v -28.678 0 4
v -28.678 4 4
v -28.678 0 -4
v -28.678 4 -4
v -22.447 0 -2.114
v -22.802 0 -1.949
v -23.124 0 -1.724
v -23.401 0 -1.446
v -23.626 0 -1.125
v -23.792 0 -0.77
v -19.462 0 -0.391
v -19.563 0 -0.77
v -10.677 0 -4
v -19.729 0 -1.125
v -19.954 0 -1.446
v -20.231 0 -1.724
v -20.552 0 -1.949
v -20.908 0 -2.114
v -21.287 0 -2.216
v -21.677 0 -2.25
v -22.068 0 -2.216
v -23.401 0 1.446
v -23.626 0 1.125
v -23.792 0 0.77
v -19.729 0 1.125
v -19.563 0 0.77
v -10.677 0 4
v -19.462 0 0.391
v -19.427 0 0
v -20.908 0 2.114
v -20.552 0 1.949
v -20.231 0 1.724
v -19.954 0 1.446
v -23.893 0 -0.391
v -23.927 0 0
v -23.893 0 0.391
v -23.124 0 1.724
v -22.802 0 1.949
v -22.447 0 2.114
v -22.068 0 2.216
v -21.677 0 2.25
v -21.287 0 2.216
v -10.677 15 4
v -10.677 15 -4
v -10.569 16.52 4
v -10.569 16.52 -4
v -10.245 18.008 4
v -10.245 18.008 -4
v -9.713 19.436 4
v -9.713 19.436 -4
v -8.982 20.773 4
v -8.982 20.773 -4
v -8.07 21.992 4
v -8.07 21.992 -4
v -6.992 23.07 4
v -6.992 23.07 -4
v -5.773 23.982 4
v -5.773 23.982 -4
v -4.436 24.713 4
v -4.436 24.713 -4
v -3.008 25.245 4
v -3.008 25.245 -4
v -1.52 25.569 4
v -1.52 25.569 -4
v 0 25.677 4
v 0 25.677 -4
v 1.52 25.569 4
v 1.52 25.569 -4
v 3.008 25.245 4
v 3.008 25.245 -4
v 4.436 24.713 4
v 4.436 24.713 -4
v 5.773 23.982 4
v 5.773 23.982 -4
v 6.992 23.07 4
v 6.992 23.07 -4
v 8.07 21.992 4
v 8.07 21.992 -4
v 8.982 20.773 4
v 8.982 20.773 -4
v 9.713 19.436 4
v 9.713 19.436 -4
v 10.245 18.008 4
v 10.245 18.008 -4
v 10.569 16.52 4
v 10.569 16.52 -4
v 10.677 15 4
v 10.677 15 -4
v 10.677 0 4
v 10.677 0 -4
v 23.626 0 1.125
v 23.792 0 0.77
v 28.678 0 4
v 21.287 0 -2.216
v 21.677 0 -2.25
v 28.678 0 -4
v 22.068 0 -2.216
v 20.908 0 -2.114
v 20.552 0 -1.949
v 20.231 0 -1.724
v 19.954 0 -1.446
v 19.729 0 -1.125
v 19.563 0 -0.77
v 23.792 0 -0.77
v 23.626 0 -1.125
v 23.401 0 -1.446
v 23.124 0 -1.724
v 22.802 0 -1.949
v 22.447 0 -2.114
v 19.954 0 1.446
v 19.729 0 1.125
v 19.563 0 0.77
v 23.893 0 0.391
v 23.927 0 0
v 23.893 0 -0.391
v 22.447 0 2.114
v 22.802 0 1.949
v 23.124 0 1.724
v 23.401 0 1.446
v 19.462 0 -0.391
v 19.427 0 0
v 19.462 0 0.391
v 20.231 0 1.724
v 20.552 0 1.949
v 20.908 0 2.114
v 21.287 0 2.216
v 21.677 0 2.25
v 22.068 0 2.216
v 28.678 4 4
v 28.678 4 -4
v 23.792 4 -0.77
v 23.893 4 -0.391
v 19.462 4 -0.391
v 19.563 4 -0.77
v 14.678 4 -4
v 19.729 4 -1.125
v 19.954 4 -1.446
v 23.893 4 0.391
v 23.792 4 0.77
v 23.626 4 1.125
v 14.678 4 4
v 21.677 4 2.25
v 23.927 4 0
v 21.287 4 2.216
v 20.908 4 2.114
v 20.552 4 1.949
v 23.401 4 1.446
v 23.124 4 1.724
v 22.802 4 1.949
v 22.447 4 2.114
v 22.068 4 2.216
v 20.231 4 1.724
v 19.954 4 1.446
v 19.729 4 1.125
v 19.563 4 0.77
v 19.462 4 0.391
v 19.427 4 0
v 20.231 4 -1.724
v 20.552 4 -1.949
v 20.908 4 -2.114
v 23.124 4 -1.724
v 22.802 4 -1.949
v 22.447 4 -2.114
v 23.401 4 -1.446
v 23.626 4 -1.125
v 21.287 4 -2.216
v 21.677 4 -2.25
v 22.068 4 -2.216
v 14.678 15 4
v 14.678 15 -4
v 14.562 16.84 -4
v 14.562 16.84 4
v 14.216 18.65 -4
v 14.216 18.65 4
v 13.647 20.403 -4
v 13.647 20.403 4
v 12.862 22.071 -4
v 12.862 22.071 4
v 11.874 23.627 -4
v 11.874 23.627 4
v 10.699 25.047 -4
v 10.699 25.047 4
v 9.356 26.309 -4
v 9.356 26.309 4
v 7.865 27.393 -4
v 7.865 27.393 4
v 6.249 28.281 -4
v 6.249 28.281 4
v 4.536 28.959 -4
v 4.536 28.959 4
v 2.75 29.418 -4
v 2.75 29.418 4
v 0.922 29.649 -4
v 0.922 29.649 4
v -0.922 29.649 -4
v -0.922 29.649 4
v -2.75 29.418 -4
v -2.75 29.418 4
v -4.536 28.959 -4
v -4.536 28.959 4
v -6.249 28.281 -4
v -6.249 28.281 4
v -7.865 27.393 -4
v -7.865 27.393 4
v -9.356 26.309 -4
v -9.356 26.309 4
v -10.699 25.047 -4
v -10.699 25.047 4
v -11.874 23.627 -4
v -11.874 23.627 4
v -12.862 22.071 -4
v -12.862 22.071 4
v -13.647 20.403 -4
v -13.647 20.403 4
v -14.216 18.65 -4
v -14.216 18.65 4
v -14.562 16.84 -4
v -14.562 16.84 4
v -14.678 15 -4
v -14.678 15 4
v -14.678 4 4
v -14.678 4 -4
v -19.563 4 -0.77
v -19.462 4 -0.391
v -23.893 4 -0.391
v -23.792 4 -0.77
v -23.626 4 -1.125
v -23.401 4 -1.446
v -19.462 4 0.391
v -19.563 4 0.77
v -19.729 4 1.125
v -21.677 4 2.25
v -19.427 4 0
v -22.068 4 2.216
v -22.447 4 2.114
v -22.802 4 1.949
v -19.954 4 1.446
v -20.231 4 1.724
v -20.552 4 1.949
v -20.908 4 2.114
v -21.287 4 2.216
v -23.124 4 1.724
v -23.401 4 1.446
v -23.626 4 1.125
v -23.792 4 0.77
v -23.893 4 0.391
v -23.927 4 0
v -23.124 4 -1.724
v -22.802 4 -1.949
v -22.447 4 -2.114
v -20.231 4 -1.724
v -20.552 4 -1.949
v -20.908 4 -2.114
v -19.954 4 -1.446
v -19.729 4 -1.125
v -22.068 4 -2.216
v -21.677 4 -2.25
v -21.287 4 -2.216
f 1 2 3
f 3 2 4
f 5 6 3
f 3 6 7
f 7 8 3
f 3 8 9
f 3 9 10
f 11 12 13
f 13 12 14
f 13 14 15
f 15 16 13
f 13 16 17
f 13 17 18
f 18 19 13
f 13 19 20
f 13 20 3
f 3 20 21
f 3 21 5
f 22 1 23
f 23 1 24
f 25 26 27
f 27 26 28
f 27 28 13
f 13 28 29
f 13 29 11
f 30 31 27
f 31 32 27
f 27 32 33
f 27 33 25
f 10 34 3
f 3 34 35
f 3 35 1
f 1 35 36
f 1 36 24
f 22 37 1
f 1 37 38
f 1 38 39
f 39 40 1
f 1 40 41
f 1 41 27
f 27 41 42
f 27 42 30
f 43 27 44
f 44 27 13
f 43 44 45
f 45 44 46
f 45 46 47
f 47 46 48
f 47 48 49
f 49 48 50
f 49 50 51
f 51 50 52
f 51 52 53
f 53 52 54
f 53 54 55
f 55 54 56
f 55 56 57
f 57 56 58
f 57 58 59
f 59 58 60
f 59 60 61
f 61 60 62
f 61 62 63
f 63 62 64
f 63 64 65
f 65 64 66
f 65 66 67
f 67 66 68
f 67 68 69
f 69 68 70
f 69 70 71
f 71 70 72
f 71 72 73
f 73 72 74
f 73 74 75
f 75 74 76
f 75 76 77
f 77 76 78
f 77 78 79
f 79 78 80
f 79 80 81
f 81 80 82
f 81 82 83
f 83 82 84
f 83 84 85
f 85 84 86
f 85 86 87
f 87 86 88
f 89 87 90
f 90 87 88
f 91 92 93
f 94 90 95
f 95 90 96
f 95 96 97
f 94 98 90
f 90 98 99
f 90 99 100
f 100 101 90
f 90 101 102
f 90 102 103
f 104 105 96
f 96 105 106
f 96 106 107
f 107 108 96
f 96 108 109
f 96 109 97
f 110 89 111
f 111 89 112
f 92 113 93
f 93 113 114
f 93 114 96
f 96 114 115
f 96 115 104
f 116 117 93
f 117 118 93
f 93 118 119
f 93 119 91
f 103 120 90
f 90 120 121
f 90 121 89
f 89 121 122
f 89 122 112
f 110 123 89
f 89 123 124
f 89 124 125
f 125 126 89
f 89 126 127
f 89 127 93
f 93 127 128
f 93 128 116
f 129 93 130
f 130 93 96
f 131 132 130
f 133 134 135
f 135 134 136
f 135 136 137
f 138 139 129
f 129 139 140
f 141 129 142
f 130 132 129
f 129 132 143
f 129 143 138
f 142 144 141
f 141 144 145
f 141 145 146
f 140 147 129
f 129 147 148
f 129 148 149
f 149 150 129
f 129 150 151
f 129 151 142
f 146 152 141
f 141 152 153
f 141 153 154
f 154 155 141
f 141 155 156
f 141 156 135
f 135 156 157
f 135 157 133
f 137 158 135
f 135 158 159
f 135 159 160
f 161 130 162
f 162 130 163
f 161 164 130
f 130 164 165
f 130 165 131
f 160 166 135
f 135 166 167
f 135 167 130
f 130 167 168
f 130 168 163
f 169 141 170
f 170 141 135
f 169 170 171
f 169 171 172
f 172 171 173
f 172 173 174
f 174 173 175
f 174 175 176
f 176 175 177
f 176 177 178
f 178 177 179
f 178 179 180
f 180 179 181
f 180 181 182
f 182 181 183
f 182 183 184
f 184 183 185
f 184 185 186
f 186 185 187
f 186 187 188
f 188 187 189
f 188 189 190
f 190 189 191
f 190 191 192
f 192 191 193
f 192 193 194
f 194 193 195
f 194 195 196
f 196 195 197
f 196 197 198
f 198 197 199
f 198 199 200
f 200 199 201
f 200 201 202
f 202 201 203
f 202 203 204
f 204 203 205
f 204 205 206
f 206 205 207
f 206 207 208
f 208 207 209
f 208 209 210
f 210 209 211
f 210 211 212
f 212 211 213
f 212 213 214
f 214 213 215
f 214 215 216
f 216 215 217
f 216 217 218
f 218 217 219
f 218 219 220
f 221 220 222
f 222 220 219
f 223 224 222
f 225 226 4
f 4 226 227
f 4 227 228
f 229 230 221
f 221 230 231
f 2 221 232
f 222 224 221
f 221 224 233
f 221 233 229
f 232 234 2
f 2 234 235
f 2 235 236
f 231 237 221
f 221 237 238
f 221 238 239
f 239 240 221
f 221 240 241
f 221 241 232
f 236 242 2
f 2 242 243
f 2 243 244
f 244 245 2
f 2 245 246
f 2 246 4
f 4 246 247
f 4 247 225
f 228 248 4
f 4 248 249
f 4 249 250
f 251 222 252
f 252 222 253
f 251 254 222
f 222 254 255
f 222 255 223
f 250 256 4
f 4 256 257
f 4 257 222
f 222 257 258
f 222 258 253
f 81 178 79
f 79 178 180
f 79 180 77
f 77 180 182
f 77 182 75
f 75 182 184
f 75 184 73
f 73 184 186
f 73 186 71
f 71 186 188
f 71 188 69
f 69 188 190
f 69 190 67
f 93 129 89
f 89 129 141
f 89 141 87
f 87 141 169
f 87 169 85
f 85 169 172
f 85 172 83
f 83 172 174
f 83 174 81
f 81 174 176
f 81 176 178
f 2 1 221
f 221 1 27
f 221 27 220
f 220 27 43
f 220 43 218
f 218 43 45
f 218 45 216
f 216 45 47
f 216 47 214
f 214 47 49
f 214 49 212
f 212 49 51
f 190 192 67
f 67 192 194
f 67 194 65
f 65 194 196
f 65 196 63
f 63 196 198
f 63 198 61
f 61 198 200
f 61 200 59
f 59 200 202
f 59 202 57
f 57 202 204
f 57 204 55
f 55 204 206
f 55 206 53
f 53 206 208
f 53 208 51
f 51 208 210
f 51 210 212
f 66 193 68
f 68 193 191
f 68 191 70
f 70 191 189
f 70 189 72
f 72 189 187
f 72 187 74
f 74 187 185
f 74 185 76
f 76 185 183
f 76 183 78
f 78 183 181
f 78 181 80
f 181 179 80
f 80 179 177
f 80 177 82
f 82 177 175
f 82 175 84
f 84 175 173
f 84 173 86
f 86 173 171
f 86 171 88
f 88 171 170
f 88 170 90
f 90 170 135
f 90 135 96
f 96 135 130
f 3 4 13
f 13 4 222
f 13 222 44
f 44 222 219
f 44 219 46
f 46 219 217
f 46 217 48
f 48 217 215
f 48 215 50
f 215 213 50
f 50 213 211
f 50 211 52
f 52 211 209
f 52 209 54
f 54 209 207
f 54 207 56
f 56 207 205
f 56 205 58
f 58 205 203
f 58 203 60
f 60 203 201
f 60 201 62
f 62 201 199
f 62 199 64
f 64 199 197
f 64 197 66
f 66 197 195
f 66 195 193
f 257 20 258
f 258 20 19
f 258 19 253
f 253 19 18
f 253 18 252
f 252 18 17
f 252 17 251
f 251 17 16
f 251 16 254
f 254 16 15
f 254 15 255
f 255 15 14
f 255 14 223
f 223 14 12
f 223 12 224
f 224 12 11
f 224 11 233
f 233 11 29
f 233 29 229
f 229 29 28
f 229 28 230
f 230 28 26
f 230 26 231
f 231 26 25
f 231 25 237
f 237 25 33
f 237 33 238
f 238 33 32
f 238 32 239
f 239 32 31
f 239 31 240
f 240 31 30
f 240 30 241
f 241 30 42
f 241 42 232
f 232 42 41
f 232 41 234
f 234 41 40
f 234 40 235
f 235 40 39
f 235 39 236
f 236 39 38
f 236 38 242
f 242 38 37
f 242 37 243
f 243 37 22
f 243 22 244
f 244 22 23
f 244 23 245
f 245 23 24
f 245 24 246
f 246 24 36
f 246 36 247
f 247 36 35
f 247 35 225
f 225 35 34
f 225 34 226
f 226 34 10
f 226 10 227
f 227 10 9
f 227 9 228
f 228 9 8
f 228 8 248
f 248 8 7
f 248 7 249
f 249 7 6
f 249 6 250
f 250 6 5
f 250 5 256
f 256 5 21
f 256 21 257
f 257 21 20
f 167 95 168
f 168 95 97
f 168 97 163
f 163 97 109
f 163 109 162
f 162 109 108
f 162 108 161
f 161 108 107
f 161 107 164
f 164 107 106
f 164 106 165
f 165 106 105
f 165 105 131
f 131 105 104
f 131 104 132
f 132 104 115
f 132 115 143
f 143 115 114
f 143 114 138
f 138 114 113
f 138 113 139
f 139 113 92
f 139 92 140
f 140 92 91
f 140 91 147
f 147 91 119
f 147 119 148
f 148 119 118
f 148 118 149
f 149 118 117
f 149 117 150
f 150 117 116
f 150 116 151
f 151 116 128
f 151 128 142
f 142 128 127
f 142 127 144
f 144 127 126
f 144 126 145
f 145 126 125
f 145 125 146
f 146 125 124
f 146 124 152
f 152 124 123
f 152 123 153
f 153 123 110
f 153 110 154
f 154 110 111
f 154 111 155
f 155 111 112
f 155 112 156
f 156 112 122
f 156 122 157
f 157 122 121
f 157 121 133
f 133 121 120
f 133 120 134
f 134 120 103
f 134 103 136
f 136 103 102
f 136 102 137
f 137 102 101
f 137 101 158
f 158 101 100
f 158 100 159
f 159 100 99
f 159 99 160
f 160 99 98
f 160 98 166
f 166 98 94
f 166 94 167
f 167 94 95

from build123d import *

# Parameters (mm, degrees)
STRAP_DEPTH        = 4
EAR_HOLES_M4_START = -0.5
SKETCH2_R          = 2.25
EAR_HOLES_M4_DEPTH = 5


with BuildPart() as part:
    # Sketch1 → Strap (new, symmetric)
    with BuildSketch(Plane.XY):
        with BuildLine():
            Line((-28.6775, 0), (-10.6775, 0))
            Line((-10.6775, 0), (-10.6775, 15))
            ThreePointArc((-10.6775, 15), (0, 25.6775), (10.6775, 15))
            Line((10.6775, 15), (10.6775, 0))
            Line((10.6775, 0), (28.6775, 0))
            Line((28.6775, 0), (28.6775, 4))
            Line((28.6775, 4), (14.6775, 4))
            Line((14.6775, 4), (14.6775, 15))
            ThreePointArc((14.6775, 15), (0, 29.6775), (-14.6775, 15))
            Line((-14.6775, 15), (-14.6775, 4))
            Line((-14.6775, 4), (-28.6775, 4))
            Line((-28.6775, 4), (-28.6775, 0))
        make_face()
    extrude(amount=STRAP_DEPTH, both=True)

    # Sketch2 → Ear_Holes_M4 (cut)
    with BuildSketch(Plane(origin=(0, 0, 0), x_dir=(1, 0, 0), z_dir=(0, 1, 0)).offset(EAR_HOLES_M4_START)):
        with Locations(Location((-21.6775, 0, 0), (0, 0, 90))):
            Circle(SKETCH2_R)
        with Locations(Location((21.6775, 0, 0), (0, 0, 90))):
            Circle(SKETCH2_R)
    extrude(amount=EAR_HOLES_M4_DEPTH, mode=Mode.SUBTRACT)


solid = part.part
